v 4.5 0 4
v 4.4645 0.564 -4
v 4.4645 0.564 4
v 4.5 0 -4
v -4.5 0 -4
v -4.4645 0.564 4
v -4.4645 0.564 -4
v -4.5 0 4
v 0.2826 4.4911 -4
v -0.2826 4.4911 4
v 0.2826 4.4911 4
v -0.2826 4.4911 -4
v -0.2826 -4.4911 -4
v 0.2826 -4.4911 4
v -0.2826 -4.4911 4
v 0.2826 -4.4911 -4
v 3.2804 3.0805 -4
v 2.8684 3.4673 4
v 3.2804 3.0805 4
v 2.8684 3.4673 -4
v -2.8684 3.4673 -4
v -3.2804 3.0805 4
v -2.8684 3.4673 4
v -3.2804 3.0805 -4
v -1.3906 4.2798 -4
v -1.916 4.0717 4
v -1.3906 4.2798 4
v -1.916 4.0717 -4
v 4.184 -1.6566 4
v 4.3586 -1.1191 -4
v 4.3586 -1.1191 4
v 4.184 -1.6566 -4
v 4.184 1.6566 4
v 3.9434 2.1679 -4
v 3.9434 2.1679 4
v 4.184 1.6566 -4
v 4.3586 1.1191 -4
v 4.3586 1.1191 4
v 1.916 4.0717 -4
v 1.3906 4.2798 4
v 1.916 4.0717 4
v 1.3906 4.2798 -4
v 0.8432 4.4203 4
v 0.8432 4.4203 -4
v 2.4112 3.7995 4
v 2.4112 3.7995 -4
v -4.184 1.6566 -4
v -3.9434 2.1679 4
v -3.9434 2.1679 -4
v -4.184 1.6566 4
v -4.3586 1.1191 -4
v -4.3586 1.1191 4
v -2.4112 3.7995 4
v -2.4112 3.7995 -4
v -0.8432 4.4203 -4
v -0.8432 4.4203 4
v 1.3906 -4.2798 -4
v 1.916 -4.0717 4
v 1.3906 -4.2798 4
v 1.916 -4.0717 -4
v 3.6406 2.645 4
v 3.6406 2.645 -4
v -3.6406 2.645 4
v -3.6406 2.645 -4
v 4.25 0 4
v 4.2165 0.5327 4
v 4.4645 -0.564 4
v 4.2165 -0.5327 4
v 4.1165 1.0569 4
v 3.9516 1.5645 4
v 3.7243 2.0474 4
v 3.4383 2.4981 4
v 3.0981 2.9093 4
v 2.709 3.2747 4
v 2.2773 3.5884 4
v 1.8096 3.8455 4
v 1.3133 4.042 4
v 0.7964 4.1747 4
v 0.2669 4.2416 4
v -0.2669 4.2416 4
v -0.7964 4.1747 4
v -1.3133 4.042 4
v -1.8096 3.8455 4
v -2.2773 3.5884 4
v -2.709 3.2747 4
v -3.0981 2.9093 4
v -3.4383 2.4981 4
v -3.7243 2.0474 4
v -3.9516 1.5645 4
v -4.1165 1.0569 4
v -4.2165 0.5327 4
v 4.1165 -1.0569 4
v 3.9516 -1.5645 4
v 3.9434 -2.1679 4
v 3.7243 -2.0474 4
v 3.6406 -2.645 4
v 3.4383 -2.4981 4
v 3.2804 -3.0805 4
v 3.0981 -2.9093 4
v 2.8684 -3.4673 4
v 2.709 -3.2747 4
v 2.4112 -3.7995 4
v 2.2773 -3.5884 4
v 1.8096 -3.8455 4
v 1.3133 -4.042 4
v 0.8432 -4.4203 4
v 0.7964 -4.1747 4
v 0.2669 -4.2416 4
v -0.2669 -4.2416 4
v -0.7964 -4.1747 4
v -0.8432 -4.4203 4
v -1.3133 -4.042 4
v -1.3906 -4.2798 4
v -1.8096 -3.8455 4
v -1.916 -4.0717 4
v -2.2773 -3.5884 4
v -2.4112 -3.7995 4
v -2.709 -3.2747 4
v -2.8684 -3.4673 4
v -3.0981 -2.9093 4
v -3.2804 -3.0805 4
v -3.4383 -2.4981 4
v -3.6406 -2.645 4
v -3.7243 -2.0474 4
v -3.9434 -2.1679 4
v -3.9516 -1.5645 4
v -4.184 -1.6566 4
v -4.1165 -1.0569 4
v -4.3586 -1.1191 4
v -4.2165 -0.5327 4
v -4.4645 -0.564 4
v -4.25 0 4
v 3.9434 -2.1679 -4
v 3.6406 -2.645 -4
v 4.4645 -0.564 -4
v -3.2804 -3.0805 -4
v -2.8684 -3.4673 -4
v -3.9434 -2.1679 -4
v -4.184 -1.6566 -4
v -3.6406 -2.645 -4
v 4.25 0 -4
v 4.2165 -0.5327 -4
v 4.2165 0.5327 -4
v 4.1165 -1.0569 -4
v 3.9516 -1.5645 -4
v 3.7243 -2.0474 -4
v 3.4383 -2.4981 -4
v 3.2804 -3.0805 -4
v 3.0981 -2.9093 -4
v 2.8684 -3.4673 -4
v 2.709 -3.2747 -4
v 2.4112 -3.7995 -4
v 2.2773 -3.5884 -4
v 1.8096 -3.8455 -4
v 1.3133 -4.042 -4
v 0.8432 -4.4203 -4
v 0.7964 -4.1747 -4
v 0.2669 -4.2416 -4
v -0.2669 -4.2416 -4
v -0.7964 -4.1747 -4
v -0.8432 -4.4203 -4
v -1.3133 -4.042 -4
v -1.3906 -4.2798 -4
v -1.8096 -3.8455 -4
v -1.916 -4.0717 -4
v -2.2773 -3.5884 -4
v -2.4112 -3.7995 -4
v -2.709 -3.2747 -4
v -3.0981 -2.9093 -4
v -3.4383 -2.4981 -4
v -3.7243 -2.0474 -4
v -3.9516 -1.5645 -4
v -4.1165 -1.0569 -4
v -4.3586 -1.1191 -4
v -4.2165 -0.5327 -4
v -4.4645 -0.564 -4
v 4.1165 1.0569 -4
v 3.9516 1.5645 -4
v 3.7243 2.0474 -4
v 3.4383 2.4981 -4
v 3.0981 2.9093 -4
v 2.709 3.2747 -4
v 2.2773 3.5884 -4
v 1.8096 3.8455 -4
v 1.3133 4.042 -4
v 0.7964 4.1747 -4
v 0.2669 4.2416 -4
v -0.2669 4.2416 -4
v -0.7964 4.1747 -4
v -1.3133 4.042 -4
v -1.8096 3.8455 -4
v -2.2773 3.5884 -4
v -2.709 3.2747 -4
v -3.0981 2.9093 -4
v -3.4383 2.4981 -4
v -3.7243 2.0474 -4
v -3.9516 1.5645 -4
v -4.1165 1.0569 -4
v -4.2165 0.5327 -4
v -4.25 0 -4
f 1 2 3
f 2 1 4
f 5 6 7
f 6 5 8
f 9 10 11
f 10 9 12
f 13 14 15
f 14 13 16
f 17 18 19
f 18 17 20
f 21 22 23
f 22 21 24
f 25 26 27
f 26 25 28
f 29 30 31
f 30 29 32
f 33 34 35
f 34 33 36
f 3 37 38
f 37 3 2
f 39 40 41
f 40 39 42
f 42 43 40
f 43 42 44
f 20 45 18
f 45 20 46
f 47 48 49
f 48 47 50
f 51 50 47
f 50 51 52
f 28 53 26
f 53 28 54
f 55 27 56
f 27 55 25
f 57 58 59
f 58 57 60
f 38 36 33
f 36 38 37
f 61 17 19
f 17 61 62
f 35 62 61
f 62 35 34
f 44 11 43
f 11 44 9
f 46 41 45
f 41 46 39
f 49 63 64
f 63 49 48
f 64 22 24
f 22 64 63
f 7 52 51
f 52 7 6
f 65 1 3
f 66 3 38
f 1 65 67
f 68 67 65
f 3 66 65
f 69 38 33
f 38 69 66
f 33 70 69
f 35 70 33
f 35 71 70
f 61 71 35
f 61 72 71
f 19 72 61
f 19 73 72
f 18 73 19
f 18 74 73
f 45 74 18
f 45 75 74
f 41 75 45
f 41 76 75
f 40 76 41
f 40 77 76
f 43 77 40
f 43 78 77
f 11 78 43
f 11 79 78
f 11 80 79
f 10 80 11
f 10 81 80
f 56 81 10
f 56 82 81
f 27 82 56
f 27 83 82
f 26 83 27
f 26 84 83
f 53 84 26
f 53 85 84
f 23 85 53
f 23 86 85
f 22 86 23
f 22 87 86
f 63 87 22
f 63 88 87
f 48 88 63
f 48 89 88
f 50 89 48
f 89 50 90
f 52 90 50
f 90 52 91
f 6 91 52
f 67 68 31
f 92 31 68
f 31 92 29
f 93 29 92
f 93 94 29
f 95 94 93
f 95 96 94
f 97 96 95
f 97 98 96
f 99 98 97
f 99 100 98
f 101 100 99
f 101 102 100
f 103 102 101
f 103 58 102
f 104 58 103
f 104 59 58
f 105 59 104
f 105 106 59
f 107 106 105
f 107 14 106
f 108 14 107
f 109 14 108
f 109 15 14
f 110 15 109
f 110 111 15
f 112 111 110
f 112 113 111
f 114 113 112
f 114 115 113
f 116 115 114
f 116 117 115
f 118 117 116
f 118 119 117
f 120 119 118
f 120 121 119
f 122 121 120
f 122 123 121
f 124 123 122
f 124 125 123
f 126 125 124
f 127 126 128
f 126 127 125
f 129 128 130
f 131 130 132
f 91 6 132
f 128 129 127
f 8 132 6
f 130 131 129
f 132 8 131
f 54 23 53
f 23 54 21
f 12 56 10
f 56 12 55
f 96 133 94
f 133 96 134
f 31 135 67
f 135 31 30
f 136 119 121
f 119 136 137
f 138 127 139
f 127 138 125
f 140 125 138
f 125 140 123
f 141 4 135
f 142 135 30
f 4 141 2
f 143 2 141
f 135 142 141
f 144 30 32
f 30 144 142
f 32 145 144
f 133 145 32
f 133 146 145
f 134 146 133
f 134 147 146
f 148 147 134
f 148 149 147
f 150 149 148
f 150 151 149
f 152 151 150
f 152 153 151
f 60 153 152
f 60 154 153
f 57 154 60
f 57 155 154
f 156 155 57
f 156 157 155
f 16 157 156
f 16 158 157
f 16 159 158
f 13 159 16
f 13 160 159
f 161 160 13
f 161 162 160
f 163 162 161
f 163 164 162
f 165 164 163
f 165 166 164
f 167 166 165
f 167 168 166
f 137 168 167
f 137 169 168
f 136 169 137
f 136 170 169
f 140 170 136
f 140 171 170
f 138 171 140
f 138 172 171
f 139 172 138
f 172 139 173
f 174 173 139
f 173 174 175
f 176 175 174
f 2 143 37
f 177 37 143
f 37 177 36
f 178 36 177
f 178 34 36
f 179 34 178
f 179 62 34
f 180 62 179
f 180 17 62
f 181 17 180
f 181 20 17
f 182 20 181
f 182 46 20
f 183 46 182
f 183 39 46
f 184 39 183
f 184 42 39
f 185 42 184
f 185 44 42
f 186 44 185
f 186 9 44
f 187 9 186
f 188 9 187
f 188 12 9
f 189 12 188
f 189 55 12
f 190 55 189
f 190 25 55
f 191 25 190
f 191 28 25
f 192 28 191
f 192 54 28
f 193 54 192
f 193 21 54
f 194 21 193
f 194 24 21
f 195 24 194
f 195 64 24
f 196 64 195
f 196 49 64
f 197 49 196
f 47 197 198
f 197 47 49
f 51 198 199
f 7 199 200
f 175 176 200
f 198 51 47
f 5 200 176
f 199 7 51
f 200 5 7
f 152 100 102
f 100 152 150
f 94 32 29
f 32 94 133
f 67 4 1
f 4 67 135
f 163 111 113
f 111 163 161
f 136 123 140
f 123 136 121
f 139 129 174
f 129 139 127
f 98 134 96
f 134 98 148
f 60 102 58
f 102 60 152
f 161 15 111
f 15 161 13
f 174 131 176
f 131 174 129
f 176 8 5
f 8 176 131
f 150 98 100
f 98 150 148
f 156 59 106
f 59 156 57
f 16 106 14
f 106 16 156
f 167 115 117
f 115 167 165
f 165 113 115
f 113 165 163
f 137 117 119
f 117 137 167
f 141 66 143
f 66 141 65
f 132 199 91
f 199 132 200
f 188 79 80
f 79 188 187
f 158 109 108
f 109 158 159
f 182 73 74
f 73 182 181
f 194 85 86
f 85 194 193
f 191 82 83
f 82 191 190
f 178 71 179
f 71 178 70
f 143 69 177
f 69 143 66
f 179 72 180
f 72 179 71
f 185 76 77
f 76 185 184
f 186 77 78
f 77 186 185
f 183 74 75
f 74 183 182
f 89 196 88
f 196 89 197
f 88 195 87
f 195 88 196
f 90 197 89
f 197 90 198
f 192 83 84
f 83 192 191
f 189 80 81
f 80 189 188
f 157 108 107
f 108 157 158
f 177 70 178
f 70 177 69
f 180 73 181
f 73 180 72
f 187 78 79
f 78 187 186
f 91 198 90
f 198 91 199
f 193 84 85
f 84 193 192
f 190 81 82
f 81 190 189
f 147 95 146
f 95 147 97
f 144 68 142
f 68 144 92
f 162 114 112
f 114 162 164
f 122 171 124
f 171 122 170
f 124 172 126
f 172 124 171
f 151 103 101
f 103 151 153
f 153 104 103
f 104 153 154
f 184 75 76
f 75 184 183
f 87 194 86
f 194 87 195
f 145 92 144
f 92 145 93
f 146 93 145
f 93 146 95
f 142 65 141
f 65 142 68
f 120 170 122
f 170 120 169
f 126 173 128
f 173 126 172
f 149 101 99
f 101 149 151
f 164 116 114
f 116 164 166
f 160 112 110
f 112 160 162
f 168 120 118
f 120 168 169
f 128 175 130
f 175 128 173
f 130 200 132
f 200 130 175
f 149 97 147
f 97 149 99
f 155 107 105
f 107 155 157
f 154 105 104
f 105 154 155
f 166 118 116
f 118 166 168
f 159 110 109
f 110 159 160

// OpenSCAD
$fn = 50;


difference() {
	union() {
		translate(v = [0, 0, -4.0000000000]) {
			cylinder(h = 8, r = 4.5000000000);
		}
	}
	union() {
		translate(v = [0, 0, -100.0000000000]) {
			cylinder(h = 200, r = 4.2500000000);
		}
	}
}
